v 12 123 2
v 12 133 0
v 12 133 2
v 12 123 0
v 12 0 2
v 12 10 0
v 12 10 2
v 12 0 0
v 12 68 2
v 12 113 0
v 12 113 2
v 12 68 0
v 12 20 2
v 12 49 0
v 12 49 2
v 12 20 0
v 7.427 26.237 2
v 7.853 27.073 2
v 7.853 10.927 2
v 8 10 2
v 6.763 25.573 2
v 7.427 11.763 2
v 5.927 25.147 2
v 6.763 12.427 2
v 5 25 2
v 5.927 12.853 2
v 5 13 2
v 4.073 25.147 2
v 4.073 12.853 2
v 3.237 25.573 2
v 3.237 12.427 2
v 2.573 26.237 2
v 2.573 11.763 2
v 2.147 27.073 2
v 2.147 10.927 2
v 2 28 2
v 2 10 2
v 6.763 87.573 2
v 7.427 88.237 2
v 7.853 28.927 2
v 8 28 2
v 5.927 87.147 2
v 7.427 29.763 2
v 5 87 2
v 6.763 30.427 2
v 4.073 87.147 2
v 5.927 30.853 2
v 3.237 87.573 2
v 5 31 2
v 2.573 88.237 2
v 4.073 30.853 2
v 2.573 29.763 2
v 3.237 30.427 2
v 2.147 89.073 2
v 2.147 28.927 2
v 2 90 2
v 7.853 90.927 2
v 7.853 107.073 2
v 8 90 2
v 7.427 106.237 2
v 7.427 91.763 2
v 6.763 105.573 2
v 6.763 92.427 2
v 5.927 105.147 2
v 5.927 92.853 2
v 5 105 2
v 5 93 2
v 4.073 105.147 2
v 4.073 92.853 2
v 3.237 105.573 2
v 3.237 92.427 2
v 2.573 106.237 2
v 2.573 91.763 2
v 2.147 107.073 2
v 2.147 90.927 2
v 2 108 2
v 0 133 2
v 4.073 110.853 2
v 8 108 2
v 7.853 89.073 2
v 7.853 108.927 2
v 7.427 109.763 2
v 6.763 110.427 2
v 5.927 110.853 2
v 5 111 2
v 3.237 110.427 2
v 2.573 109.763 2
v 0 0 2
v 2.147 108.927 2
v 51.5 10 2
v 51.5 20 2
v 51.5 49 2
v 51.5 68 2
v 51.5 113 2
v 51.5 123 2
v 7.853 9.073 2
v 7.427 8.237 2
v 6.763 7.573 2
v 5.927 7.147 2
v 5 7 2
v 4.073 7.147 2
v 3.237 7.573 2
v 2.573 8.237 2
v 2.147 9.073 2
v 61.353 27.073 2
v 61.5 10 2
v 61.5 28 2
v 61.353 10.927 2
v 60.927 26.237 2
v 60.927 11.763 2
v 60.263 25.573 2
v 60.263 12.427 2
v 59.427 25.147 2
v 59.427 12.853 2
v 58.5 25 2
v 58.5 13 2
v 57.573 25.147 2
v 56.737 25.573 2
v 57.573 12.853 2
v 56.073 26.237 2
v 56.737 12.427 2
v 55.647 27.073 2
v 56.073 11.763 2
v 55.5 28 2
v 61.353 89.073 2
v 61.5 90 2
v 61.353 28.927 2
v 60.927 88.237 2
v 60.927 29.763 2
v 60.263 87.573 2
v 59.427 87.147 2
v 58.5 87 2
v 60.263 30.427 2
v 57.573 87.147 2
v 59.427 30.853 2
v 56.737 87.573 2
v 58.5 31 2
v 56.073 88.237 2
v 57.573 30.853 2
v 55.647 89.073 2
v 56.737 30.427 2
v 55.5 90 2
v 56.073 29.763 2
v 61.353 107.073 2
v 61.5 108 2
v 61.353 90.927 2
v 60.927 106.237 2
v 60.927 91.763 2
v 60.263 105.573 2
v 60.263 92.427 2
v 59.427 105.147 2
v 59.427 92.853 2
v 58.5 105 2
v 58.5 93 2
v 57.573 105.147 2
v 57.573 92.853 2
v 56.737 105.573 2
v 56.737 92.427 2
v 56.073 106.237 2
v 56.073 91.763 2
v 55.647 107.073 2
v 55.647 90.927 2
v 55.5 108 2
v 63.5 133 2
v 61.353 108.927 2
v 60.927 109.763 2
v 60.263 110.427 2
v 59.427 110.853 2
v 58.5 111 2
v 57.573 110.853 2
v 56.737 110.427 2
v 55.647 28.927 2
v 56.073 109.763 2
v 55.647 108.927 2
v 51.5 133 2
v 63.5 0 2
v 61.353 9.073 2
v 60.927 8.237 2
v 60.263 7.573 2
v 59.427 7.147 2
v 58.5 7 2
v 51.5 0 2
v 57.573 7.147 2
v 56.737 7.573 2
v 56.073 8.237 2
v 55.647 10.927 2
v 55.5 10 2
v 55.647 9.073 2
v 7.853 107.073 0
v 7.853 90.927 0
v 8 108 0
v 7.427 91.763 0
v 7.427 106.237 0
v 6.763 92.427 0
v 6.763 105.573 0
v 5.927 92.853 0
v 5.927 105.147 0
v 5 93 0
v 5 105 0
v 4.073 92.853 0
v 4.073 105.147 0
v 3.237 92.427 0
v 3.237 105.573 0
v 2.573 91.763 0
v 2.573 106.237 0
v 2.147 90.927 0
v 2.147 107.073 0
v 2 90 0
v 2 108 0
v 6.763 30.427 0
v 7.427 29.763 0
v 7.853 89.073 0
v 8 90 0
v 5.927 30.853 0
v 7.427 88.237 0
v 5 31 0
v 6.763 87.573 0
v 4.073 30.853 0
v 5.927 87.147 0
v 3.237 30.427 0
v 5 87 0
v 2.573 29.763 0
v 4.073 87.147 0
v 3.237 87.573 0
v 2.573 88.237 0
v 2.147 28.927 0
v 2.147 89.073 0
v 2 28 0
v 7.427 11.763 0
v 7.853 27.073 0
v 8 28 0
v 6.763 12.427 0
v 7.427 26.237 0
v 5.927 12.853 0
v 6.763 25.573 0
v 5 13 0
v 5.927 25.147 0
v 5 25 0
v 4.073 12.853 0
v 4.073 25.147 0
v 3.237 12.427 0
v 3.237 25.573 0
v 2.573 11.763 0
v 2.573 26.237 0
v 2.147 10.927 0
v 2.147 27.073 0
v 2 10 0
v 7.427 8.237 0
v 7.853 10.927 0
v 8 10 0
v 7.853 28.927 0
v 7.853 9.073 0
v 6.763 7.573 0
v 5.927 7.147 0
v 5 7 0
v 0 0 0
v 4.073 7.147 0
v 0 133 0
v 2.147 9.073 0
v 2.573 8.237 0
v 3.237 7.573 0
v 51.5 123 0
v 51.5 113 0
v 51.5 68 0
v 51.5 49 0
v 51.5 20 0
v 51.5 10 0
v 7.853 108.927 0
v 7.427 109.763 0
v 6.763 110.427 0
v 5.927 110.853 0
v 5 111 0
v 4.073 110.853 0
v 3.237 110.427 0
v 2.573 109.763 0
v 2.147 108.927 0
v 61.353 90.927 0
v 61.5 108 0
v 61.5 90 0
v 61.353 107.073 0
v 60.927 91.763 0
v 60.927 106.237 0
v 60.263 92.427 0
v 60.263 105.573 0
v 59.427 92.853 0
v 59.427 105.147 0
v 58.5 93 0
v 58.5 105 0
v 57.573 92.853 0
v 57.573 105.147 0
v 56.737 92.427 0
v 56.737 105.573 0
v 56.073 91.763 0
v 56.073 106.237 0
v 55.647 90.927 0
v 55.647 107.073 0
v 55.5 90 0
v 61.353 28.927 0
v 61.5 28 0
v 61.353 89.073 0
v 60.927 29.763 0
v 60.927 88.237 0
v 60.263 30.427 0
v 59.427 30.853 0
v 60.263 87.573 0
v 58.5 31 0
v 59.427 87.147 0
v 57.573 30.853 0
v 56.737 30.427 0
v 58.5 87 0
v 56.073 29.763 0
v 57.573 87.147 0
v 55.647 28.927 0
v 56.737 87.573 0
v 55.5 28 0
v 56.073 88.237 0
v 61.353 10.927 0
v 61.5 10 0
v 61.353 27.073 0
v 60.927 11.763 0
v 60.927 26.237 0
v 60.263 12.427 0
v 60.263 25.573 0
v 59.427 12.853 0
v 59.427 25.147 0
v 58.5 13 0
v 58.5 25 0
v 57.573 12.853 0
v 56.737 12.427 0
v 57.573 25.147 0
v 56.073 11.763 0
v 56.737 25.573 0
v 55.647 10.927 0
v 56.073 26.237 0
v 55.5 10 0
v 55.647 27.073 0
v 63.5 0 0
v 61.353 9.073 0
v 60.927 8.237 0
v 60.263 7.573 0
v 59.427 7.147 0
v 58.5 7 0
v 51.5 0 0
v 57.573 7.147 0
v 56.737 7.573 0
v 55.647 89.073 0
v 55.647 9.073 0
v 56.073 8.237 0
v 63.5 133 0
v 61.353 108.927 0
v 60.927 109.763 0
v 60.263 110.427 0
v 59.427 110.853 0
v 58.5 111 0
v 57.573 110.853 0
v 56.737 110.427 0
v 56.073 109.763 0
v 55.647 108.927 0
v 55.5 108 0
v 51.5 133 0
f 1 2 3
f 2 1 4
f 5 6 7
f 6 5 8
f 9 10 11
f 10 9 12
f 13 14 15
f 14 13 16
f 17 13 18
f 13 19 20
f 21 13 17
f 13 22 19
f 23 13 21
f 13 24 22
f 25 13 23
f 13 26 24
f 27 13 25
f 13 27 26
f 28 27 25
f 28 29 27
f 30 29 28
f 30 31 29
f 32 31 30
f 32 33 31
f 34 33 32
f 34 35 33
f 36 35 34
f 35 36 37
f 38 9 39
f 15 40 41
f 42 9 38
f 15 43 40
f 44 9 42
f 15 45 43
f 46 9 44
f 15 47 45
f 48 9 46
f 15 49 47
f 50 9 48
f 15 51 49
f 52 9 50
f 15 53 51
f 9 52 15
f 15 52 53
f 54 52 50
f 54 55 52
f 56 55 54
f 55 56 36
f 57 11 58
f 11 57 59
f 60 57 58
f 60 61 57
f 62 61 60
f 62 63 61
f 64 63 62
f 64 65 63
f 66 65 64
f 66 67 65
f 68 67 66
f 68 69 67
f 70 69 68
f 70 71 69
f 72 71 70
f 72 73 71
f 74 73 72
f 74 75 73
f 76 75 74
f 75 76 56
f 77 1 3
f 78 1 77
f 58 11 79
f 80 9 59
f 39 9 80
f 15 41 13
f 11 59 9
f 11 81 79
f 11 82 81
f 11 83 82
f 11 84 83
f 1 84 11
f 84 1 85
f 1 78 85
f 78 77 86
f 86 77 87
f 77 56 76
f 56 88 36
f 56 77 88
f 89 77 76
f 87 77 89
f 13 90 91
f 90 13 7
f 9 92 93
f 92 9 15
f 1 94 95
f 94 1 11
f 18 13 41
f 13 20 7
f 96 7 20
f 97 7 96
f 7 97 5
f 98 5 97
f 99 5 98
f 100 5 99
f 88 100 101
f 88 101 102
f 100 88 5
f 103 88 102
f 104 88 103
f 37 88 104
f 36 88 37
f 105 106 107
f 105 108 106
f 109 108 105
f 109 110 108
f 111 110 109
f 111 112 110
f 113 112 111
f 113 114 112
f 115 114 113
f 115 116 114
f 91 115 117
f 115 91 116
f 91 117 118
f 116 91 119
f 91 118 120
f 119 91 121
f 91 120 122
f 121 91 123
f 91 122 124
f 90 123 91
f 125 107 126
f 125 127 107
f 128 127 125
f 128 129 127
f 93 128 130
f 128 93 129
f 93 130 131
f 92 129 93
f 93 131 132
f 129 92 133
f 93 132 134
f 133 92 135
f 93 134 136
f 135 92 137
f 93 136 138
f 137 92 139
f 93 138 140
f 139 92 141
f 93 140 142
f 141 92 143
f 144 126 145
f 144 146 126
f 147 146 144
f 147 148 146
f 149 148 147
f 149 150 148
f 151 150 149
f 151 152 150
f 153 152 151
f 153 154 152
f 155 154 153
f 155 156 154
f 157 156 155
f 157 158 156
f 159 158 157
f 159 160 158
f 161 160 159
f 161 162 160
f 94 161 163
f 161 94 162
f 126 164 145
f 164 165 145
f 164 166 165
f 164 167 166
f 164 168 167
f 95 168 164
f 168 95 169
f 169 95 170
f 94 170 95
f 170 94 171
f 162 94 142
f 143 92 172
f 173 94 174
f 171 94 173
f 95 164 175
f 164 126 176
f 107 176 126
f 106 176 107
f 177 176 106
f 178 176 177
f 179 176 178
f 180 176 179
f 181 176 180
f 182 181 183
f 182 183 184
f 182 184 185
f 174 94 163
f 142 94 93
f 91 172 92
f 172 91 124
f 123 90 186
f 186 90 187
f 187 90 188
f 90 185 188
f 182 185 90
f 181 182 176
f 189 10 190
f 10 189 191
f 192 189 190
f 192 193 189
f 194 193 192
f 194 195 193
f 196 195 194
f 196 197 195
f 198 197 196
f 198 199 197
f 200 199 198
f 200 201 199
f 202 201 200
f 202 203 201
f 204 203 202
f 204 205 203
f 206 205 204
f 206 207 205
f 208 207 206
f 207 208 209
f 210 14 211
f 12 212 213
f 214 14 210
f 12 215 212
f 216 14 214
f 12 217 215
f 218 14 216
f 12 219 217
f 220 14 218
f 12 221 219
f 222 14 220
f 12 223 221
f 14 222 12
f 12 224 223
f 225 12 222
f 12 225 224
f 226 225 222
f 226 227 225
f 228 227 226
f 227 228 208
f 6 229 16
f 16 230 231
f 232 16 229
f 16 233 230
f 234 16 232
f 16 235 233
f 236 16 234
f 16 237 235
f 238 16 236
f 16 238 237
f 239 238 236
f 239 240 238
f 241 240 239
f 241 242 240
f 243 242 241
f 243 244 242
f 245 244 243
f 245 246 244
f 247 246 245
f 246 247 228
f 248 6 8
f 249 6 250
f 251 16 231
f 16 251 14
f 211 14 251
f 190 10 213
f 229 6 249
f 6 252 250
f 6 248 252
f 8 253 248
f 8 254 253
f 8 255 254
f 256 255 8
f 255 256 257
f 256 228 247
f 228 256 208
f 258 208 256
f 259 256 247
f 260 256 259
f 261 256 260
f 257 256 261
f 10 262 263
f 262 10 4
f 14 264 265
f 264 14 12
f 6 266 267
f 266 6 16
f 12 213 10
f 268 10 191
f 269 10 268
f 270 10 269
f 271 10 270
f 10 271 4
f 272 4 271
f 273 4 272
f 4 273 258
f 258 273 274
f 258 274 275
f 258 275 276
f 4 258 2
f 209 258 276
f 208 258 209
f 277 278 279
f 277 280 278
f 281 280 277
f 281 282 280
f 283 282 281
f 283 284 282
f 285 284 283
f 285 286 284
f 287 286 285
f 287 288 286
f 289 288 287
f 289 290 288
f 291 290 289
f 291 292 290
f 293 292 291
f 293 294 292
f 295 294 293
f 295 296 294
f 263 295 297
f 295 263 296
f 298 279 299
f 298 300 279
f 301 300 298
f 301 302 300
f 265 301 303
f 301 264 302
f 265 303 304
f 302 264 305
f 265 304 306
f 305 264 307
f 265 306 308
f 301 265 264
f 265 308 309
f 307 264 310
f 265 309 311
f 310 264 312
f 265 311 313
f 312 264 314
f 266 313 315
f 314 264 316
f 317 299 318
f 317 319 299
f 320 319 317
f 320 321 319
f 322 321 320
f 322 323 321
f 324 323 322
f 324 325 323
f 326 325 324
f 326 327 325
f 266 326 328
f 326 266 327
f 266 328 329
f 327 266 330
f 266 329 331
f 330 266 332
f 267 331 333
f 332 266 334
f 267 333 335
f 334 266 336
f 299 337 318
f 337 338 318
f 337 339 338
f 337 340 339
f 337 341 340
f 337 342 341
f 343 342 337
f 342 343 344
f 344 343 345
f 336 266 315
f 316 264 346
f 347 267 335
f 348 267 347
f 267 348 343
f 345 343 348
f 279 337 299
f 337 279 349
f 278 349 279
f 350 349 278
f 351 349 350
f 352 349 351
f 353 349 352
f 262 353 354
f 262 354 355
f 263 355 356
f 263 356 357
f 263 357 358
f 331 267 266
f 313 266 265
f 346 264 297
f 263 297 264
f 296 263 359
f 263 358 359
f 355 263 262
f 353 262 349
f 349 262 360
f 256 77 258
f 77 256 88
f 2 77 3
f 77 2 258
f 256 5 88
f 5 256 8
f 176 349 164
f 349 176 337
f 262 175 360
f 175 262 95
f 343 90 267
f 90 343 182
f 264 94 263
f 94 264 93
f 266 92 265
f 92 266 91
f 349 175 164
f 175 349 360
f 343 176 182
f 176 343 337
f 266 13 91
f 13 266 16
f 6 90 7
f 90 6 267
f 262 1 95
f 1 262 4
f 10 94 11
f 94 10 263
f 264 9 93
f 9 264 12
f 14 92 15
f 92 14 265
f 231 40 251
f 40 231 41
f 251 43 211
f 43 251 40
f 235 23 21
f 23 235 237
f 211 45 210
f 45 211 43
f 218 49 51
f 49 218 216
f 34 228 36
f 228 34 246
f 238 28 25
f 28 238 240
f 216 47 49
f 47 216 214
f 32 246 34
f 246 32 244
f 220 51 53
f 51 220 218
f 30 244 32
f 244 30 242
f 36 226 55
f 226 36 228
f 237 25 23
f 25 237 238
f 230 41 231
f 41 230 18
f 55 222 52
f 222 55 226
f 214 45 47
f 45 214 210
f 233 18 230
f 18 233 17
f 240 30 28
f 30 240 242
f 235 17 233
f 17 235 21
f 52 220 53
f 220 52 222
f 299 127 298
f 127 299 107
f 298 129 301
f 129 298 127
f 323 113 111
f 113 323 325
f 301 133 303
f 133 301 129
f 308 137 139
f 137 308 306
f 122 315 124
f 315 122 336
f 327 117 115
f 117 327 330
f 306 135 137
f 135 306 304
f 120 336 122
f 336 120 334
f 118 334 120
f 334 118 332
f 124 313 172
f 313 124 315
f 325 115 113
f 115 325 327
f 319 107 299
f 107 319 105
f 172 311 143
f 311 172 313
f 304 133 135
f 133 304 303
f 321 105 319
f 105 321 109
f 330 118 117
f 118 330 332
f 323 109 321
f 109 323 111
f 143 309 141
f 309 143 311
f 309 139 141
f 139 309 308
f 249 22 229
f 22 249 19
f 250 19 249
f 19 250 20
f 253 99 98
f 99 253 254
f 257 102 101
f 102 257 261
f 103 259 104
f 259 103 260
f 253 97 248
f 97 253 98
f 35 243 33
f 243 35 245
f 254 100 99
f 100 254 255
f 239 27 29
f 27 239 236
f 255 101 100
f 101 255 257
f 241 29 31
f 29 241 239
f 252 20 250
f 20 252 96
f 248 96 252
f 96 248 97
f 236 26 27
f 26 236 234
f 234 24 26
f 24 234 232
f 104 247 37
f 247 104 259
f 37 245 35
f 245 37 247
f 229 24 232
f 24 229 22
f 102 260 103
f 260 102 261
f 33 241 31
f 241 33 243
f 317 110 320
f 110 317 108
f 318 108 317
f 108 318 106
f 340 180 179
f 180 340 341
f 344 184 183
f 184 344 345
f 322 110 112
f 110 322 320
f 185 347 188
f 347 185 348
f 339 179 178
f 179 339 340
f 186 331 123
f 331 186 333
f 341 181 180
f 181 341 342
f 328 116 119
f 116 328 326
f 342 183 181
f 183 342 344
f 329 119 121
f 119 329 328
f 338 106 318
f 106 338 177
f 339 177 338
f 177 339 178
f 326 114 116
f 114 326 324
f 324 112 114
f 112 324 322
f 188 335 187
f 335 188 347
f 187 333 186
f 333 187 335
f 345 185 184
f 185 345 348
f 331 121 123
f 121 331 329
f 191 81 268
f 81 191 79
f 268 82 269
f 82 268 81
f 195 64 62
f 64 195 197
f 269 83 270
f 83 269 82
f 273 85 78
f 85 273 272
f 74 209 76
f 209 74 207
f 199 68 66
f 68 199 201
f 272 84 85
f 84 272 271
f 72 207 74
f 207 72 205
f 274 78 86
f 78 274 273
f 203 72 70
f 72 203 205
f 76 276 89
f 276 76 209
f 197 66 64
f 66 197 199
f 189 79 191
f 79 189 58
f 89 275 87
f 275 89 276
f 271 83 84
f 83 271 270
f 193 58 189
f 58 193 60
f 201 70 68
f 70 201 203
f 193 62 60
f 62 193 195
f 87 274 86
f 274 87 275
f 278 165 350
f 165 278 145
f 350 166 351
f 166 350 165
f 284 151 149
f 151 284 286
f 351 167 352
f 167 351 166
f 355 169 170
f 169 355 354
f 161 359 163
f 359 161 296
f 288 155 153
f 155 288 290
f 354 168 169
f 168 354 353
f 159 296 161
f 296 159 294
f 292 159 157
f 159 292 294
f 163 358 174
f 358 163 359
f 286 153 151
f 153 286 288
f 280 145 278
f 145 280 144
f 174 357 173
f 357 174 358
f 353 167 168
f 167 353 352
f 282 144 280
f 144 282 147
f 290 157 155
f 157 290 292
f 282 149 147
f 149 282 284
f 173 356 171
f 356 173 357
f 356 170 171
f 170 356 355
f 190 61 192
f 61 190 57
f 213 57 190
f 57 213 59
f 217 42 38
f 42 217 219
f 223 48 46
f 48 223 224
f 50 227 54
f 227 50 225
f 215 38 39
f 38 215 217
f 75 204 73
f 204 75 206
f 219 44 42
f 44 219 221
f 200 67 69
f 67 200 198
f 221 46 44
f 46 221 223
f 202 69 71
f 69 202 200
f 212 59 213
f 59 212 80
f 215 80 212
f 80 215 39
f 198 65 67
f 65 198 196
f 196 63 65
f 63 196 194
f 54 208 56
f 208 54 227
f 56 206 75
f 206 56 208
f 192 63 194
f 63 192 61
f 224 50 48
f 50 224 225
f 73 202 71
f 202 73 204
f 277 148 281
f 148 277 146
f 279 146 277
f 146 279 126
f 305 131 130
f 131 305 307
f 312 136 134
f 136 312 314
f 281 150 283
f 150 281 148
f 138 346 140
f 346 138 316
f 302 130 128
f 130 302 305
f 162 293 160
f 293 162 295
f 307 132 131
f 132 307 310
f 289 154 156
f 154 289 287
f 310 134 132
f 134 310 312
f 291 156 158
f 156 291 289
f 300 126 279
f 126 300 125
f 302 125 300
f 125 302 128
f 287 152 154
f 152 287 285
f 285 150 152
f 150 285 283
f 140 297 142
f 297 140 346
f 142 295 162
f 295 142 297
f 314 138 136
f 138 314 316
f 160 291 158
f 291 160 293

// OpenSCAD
// all dimensions are in mm
bar1_width = 12;    // mm
bar1_length = 133;
bar1_height = 2;

board_inner_edge_to_edge = 63.5;
front_edge_to_front_edge = board_inner_edge_to_edge-bar1_width;

module holes() {
    // holes
    union() {
        translate([5,10,5]) {
            cylinder(20, 3, 3, center=true, $fn=20);
        }
        translate([board_inner_edge_to_edge-5,10,5]) {
            cylinder(20, 3, 3, center=true, $fn=20);
        }
        translate([0,18,0]) {
            translate([5,10,5]) {
                cylinder(20, 3, 3, center=true, $fn=20);
            }
            translate([board_inner_edge_to_edge-5,10,5]) {
                cylinder(20, 3, 3, center=true, $fn=20);
            }
        }
    }
}

difference() {
    union() {
        // front to back bars
        cube([bar1_width,bar1_length,bar1_height], center=false);

        translate([front_edge_to_front_edge, 0, 0]) {
            cube([bar1_width,bar1_length,bar1_height], center=false);
        }


        cross_bar1_offset = 10;
        cross_bar1_width = 10;

        cross_bar2_width = 10;
        cross_bar2_offset = (bar1_length-10)-cross_bar2_width;

        // cross bars
        translate([0,cross_bar1_offset,0]) {
         cube([board_inner_edge_to_edge, 10, bar1_height], center = false);
        }
        translate([0,cross_bar2_offset,0]) {
         cube([board_inner_edge_to_edge, cross_bar2_width, bar1_height], center = false);
        }

        cross_bar3_offset = 49;
        cross_bar3_width = 19;
        translate([0,cross_bar3_offset,0]) {
         cube([board_inner_edge_to_edge, cross_bar3_width, bar1_height], center = false);
        }
    }


    holes();
    translate([0,80,0]) holes();
}
